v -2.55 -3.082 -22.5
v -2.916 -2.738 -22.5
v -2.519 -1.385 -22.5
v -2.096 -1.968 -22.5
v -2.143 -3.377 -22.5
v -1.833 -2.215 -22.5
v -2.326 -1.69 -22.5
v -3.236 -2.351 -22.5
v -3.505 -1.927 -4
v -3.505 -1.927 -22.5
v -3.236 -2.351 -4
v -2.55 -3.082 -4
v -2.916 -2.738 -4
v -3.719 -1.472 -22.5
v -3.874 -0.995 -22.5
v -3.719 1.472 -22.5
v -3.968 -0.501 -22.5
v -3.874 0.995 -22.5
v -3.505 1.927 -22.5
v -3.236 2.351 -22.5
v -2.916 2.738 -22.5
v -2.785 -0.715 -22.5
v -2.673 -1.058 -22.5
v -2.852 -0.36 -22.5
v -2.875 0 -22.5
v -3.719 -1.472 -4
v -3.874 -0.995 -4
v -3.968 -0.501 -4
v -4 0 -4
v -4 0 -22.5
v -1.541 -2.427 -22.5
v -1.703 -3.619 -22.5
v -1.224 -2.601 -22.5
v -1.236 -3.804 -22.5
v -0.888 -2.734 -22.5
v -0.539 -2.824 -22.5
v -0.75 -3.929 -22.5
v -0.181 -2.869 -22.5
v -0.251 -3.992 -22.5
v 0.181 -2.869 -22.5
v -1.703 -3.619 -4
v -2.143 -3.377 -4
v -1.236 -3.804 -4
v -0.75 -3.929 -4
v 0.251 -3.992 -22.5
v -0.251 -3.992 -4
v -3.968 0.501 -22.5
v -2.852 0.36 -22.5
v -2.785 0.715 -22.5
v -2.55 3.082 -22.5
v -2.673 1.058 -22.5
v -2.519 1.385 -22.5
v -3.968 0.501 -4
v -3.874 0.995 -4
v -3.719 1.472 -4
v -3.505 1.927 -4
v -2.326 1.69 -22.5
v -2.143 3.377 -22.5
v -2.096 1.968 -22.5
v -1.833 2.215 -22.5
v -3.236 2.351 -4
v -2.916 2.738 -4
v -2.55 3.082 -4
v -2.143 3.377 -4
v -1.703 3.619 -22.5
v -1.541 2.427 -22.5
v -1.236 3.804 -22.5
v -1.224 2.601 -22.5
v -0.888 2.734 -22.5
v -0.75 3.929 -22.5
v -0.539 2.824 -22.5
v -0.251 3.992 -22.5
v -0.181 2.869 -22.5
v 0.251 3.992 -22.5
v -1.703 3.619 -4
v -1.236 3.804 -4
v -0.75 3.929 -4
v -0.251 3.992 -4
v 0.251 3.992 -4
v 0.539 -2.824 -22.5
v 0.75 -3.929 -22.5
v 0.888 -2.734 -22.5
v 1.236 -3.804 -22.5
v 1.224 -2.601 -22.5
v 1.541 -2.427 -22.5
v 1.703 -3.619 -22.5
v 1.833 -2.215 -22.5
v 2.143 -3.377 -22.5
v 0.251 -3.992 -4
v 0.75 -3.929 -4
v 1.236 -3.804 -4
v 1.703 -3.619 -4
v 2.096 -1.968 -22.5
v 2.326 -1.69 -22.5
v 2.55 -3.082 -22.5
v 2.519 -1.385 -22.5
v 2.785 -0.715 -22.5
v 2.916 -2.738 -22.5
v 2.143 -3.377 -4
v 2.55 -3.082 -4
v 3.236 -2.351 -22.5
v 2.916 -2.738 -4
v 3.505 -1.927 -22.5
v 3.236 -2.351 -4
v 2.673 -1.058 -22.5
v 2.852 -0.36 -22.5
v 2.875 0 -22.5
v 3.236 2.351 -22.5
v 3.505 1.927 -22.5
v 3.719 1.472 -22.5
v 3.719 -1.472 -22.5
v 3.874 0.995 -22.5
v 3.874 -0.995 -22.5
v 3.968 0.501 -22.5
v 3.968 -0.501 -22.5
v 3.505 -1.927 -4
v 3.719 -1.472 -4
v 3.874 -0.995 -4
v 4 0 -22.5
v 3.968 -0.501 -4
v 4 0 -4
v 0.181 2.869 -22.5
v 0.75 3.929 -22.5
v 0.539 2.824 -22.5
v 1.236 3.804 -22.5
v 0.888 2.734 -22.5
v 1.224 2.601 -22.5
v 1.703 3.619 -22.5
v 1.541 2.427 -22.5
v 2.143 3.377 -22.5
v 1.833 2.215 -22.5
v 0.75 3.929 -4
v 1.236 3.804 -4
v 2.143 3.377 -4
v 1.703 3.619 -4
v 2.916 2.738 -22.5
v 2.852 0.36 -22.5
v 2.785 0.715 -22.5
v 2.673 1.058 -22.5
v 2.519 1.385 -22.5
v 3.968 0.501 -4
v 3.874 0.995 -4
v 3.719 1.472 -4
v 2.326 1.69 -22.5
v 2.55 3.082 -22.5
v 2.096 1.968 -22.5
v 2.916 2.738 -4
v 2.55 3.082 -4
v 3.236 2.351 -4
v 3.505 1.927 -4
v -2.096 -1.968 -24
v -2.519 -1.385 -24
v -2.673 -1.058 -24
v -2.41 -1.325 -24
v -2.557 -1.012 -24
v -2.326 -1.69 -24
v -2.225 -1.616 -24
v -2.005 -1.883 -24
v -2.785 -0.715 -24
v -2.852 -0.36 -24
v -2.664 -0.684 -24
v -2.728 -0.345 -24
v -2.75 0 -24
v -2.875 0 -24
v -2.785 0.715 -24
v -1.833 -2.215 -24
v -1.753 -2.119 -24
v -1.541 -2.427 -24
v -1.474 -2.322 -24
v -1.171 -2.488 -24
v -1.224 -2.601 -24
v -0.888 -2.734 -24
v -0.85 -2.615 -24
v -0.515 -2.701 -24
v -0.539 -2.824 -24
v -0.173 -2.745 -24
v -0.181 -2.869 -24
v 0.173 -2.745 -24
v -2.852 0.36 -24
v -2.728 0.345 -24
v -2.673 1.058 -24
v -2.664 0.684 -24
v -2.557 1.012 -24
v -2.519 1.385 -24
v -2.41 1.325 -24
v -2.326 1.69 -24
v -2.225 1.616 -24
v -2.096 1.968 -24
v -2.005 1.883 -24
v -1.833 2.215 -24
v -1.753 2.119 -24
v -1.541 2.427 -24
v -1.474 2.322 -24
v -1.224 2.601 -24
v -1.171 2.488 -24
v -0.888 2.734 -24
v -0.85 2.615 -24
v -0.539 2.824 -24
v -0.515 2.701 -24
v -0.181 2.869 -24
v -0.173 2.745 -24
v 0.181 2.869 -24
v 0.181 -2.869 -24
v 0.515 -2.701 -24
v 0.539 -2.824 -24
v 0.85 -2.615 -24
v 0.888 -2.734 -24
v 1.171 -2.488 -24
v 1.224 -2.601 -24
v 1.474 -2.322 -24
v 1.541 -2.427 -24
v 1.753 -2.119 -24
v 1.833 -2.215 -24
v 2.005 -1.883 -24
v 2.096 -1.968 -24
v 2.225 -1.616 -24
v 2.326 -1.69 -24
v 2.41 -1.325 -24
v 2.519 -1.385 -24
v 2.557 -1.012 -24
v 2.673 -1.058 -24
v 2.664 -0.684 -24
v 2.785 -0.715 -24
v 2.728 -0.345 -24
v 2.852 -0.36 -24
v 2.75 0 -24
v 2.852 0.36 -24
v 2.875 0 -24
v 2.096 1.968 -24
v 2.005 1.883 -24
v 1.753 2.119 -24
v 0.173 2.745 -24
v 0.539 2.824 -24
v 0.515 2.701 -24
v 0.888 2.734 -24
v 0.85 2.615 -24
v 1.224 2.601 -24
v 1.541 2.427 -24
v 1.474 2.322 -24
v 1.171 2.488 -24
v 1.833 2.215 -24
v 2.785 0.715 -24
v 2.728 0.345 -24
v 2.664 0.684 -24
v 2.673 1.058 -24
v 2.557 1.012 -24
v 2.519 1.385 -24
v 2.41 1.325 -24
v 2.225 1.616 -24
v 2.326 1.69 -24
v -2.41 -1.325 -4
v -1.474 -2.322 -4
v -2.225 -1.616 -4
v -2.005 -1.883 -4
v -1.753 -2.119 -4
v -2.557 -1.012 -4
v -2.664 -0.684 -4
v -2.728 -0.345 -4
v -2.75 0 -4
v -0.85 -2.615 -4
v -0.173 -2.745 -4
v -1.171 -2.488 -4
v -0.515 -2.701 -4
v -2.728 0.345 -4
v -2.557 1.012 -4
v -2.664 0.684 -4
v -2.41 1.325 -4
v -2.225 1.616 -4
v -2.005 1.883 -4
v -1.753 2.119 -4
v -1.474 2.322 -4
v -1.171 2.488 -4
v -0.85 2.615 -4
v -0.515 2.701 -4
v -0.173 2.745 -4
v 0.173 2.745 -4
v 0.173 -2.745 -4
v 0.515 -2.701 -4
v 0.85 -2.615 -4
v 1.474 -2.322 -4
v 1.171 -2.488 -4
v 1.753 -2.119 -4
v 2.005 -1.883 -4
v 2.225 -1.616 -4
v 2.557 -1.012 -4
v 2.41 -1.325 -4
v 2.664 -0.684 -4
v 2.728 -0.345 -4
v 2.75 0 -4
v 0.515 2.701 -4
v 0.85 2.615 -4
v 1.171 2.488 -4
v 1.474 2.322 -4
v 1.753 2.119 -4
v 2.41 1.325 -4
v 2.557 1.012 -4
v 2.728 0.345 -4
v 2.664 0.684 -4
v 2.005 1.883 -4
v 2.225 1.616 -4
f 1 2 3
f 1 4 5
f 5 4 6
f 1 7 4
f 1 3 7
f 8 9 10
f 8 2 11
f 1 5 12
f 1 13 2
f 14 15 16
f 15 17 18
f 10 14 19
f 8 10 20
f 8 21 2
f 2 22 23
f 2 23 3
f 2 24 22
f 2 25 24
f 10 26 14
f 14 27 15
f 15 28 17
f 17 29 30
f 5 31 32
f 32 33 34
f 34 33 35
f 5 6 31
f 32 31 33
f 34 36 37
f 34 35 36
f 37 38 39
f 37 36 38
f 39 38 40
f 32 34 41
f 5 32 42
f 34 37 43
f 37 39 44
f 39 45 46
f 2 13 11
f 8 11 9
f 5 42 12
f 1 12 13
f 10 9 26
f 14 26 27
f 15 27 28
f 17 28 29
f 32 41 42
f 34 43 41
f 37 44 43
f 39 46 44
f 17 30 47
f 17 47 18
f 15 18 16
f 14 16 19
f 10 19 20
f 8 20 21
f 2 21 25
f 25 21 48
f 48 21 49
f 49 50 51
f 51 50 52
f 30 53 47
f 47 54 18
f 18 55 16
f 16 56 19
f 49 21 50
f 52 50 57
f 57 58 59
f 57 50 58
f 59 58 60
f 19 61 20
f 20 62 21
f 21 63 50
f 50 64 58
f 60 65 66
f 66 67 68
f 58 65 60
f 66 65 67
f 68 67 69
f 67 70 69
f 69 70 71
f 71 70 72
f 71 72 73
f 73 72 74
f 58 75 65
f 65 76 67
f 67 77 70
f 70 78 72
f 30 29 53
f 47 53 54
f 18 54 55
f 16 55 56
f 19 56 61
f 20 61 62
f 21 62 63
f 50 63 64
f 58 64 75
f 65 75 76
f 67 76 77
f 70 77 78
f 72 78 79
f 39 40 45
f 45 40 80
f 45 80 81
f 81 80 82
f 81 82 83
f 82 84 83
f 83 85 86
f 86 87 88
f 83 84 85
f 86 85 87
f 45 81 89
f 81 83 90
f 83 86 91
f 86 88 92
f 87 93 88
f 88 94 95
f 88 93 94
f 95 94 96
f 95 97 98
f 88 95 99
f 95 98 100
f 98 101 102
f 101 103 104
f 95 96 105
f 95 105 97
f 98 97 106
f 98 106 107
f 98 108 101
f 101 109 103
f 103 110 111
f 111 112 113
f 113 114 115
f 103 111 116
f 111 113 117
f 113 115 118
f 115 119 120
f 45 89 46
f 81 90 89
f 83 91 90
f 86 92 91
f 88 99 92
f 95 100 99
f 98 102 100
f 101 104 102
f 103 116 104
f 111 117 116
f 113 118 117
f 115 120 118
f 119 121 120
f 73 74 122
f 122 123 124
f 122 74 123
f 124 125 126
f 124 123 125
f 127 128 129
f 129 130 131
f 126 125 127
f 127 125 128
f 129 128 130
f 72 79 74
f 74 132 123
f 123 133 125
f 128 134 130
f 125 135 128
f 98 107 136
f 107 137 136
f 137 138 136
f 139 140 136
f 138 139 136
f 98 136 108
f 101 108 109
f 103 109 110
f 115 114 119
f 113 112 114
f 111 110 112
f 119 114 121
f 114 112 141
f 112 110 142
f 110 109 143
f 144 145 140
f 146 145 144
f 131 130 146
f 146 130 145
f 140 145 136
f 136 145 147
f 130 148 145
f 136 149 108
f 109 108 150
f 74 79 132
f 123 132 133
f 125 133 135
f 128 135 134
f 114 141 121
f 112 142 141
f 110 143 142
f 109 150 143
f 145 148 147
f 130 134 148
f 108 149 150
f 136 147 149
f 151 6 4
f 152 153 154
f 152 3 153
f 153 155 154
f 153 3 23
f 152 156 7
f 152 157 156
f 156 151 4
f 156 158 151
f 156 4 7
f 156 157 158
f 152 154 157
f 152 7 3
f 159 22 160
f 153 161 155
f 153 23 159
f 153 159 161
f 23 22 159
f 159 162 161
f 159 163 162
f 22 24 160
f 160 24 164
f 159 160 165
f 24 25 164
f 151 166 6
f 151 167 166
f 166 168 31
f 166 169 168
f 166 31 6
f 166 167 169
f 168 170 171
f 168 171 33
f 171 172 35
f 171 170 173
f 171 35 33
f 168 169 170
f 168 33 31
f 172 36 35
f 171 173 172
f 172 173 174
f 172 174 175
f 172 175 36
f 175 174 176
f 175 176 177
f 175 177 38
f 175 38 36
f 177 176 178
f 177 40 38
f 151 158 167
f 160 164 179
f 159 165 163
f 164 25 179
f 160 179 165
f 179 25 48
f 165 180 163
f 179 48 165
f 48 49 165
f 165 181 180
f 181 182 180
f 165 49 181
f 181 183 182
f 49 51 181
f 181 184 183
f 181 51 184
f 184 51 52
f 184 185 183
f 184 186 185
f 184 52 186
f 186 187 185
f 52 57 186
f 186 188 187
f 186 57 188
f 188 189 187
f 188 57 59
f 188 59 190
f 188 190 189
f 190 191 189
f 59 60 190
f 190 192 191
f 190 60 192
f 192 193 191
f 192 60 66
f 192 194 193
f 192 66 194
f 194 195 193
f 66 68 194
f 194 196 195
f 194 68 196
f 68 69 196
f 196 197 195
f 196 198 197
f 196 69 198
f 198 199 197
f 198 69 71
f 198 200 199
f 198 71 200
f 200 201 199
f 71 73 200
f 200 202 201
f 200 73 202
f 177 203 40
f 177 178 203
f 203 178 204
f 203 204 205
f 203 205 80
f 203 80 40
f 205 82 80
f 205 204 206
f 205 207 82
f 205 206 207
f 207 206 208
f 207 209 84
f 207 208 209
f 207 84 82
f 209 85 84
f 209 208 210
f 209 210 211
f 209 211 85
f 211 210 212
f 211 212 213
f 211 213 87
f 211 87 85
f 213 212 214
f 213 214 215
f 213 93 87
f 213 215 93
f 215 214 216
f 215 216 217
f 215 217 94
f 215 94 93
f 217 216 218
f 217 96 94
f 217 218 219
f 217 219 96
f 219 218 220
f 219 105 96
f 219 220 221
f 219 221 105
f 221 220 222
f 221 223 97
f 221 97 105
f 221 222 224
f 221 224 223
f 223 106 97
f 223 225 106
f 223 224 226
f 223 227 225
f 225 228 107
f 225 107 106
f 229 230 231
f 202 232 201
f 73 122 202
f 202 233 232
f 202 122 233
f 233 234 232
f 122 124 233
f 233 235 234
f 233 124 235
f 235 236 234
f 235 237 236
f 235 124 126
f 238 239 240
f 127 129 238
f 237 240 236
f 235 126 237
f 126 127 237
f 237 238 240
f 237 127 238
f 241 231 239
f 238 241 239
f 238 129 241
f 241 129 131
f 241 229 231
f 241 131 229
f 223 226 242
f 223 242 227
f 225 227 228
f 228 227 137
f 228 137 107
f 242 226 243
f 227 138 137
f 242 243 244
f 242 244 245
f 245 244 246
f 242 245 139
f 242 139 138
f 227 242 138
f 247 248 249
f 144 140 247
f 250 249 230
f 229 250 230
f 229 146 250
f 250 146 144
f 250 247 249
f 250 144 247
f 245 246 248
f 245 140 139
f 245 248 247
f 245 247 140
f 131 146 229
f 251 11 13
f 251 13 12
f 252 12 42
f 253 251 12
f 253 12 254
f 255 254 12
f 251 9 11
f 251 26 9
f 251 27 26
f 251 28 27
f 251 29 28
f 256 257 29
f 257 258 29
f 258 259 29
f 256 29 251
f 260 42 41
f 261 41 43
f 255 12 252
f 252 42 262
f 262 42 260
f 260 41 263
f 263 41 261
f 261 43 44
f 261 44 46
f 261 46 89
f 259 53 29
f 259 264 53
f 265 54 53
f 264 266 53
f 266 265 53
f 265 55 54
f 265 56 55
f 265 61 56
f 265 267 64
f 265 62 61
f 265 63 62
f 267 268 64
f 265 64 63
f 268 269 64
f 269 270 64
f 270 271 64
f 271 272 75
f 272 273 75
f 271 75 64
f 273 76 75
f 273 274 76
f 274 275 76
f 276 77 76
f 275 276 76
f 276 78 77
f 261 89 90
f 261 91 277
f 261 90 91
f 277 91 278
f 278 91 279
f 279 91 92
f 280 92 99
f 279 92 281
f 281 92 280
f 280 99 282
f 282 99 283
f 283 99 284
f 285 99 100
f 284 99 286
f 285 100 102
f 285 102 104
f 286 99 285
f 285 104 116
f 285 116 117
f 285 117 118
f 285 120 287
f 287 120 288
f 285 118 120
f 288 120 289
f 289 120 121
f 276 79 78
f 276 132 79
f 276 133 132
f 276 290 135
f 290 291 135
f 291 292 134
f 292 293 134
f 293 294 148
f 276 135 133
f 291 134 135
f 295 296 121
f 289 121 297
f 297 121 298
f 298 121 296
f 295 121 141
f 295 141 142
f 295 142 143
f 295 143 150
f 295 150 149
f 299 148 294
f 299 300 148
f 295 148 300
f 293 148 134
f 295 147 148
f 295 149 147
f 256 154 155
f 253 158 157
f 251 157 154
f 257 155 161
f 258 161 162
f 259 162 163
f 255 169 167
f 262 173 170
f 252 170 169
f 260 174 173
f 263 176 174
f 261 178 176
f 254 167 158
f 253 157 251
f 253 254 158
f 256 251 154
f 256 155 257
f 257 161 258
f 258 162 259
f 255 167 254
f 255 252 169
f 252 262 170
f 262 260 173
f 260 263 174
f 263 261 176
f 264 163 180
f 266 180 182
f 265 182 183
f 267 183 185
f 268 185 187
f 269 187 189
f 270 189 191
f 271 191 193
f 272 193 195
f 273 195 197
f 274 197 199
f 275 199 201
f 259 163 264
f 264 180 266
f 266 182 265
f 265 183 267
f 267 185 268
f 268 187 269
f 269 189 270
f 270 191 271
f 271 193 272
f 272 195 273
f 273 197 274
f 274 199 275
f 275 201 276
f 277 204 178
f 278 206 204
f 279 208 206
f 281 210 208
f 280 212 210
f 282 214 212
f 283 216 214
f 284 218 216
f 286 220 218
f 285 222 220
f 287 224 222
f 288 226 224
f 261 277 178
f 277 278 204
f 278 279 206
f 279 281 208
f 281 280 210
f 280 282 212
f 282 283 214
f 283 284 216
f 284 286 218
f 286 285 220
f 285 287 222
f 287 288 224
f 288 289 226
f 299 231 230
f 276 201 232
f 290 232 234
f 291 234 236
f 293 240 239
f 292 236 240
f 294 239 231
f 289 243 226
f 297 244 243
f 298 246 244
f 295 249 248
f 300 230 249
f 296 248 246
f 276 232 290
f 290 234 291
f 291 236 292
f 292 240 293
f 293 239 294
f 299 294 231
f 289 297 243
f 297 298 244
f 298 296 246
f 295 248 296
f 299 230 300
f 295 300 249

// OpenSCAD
$fn = 50;

difference() {
	union() {
		translate(v = [0, 0, -22.5]) {
			cylinder(h = 22.5, r = 4.0);
		}
		#translate(v = [0, 0, -24.0]) {
			cylinder(h = 24, r = 2.875);
		}
	}
	union() {
		translate(v = [0, 0, 0]) {
			rotate(a = [0, 0, 0]) {
				difference() {
					union() {
						translate(v = [0, 0, -4]) {
							linear_extrude(height = 4) {
								polygon(points = [[4.8468, 0.0], [2.4234000000000004, 4.197451927062417], [-2.423399999999999, 4.197451927062417], [-4.8468, 5.935618106107392e-16], [-2.423400000000002, -4.197451927062416], [2.423399999999997, -4.197451927062419]]);
							}
						}
					}
					union();
				}
			}
		}
		#translate(v = [0, 0, -100.0]) {
			cylinder(h = 200, r = 2.75);
		}
	}
}
